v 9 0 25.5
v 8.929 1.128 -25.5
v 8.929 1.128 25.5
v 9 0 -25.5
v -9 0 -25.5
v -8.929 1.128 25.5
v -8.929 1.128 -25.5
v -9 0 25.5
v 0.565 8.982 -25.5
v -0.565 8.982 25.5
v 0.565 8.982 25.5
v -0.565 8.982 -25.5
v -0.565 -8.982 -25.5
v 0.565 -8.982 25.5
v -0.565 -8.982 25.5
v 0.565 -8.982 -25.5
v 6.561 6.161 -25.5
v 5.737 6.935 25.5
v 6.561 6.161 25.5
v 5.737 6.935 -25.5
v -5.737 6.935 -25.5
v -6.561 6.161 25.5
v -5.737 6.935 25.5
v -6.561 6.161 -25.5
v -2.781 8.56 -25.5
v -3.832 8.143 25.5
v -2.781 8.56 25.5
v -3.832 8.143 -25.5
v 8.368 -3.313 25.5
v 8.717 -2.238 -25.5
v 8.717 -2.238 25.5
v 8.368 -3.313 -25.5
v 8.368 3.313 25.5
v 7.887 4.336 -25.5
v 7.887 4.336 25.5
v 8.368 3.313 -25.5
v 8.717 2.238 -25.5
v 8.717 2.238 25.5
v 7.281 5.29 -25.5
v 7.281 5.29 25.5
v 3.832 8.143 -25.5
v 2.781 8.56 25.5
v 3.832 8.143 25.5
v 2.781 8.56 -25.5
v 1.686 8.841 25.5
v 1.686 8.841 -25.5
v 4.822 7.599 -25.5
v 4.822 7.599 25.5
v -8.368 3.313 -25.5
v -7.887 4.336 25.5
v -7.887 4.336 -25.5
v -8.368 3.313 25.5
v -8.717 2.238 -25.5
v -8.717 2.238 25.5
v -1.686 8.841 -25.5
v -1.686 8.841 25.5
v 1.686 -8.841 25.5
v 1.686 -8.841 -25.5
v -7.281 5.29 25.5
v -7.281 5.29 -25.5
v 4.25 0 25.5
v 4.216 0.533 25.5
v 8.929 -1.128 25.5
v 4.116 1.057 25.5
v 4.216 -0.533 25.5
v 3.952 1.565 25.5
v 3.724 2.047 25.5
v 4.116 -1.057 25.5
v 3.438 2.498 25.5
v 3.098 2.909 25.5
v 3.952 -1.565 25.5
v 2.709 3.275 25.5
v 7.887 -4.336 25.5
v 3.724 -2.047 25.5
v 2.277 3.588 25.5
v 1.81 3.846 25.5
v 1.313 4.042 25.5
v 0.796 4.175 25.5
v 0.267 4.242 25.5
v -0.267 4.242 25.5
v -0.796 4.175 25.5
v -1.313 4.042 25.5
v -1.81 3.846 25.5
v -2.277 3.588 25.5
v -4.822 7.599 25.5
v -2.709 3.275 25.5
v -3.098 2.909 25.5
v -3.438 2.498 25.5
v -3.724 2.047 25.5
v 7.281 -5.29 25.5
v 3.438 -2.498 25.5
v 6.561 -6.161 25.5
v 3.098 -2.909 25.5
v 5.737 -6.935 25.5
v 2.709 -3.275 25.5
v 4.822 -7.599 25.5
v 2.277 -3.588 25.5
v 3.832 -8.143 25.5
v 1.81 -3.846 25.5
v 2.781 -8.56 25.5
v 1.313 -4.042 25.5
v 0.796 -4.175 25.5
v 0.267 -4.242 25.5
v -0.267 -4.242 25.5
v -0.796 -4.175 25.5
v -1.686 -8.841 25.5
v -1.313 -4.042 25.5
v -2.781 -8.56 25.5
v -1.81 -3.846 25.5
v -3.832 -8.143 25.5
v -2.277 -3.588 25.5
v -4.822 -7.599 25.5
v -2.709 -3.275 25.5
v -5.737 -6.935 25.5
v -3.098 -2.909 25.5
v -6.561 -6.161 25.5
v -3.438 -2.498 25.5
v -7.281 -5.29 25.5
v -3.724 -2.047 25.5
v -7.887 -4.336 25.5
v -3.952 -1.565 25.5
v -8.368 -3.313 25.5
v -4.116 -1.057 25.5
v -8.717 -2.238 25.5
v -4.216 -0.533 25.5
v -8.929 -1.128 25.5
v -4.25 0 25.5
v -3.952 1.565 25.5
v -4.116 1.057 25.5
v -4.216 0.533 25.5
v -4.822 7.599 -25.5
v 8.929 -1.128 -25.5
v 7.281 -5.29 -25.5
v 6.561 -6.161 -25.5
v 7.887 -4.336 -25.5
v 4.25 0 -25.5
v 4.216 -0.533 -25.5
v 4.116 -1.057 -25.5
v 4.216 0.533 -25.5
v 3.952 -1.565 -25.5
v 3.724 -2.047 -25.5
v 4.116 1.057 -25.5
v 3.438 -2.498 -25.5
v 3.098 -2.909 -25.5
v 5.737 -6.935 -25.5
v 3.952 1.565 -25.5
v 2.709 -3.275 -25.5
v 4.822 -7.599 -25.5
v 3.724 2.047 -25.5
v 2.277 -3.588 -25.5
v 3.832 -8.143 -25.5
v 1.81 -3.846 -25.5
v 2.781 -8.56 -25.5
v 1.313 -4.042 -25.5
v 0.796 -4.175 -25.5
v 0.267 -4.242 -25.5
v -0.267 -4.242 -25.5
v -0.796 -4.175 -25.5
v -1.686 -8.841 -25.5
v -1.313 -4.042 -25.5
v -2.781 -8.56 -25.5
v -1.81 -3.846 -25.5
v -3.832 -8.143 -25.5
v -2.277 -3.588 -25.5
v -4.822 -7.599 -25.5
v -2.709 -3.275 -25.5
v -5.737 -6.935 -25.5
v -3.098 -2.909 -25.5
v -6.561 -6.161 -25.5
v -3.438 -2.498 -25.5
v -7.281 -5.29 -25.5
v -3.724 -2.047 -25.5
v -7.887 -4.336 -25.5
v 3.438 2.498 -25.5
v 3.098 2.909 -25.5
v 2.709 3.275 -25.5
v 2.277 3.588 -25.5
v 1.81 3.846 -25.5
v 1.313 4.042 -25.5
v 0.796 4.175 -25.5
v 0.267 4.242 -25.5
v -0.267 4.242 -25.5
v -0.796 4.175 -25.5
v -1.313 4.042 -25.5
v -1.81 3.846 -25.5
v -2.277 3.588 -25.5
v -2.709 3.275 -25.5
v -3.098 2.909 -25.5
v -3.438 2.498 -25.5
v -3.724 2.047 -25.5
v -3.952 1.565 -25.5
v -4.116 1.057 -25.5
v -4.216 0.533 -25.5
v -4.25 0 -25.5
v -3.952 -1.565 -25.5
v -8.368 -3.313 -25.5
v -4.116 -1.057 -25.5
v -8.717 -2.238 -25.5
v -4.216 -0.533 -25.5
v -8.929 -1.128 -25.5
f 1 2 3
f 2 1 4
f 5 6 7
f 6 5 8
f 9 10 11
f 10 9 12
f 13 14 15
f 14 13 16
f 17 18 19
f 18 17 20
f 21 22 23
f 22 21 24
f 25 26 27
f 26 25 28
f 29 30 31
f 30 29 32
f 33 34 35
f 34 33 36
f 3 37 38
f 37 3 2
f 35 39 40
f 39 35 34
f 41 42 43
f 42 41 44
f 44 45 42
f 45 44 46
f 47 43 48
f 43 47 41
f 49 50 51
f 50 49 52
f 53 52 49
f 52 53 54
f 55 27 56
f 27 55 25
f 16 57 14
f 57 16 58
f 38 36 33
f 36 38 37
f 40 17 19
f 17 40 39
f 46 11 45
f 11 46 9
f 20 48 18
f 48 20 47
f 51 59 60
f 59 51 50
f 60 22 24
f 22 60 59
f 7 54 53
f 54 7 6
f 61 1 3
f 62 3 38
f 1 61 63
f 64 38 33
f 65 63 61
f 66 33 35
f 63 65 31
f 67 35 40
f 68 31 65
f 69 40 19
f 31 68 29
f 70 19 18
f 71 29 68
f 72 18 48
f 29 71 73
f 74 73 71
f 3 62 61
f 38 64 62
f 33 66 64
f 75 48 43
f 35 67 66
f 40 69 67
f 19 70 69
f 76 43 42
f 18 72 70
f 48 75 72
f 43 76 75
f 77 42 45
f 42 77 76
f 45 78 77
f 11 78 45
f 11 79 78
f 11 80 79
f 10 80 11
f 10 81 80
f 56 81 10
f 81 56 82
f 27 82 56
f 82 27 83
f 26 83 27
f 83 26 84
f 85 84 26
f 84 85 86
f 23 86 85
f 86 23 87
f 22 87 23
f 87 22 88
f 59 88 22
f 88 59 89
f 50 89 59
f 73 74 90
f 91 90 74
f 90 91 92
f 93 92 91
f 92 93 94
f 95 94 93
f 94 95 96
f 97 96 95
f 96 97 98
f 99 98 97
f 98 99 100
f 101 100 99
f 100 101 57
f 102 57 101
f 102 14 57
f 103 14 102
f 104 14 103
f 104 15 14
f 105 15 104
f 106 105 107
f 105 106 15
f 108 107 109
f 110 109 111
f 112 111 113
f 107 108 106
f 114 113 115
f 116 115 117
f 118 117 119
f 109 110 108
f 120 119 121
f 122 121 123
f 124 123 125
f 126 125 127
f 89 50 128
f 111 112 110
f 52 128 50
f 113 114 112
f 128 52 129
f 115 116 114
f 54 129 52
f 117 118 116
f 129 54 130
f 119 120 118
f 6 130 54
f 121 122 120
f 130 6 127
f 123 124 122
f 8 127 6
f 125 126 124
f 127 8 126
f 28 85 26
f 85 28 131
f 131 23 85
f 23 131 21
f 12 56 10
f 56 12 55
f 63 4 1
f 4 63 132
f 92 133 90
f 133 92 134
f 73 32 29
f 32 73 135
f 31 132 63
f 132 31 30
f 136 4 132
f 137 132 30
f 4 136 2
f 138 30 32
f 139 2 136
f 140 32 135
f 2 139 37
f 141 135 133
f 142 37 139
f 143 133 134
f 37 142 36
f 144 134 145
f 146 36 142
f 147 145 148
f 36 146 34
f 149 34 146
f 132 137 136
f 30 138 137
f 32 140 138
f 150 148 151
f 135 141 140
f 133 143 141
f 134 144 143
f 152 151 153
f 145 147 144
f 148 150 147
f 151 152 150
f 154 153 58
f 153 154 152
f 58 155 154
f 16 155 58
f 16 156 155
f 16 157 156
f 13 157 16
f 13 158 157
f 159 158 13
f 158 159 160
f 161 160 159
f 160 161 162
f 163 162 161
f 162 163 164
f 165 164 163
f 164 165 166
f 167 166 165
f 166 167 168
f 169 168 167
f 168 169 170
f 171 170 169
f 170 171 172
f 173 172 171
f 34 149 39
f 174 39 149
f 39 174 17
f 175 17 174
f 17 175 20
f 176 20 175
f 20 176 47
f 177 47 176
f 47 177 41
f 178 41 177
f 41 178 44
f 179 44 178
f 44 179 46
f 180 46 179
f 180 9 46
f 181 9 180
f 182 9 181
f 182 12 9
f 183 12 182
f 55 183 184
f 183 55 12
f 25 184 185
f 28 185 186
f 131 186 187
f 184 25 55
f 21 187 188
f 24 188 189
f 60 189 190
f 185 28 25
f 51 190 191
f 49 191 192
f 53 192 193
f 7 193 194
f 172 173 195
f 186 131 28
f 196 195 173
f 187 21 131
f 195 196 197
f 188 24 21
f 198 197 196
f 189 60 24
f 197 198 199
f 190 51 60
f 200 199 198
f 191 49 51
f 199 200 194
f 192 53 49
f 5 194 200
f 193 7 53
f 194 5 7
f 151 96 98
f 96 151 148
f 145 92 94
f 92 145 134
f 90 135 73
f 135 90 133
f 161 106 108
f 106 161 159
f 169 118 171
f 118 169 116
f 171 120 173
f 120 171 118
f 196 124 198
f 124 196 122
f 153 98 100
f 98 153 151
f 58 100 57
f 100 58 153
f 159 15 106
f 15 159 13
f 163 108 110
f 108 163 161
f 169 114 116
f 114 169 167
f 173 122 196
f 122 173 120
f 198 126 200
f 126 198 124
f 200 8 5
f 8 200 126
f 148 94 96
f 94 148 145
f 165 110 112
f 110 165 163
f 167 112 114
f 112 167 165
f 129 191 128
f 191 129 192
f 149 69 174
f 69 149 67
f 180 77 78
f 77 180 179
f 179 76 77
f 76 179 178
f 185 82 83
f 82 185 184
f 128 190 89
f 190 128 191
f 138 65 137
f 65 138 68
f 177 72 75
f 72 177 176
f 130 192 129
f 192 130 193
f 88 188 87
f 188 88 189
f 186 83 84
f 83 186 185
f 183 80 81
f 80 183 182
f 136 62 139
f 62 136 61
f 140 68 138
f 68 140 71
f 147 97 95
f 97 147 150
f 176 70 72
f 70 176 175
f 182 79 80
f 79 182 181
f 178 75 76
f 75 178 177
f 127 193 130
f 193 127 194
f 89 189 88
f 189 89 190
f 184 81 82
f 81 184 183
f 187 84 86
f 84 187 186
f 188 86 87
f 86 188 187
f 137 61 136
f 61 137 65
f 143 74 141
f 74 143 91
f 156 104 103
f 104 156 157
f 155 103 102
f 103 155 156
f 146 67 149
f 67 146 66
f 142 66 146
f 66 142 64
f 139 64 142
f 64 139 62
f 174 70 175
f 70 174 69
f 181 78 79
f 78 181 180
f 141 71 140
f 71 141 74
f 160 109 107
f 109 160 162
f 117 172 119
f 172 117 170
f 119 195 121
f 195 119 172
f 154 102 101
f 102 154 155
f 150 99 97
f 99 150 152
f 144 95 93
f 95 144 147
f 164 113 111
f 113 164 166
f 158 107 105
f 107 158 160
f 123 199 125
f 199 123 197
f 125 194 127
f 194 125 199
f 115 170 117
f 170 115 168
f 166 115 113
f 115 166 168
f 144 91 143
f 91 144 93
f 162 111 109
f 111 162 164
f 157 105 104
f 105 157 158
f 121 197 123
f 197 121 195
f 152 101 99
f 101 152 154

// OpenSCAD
$fn = 50;


difference() {
	union() {
		translate(v = [0, 0, -25.5000000000]) {
			cylinder(h = 51, r = 9.0000000000);
		}
	}
	union() {
		translate(v = [0, 0, -100.0000000000]) {
			cylinder(h = 200, r = 4.2500000000);
		}
	}
}
